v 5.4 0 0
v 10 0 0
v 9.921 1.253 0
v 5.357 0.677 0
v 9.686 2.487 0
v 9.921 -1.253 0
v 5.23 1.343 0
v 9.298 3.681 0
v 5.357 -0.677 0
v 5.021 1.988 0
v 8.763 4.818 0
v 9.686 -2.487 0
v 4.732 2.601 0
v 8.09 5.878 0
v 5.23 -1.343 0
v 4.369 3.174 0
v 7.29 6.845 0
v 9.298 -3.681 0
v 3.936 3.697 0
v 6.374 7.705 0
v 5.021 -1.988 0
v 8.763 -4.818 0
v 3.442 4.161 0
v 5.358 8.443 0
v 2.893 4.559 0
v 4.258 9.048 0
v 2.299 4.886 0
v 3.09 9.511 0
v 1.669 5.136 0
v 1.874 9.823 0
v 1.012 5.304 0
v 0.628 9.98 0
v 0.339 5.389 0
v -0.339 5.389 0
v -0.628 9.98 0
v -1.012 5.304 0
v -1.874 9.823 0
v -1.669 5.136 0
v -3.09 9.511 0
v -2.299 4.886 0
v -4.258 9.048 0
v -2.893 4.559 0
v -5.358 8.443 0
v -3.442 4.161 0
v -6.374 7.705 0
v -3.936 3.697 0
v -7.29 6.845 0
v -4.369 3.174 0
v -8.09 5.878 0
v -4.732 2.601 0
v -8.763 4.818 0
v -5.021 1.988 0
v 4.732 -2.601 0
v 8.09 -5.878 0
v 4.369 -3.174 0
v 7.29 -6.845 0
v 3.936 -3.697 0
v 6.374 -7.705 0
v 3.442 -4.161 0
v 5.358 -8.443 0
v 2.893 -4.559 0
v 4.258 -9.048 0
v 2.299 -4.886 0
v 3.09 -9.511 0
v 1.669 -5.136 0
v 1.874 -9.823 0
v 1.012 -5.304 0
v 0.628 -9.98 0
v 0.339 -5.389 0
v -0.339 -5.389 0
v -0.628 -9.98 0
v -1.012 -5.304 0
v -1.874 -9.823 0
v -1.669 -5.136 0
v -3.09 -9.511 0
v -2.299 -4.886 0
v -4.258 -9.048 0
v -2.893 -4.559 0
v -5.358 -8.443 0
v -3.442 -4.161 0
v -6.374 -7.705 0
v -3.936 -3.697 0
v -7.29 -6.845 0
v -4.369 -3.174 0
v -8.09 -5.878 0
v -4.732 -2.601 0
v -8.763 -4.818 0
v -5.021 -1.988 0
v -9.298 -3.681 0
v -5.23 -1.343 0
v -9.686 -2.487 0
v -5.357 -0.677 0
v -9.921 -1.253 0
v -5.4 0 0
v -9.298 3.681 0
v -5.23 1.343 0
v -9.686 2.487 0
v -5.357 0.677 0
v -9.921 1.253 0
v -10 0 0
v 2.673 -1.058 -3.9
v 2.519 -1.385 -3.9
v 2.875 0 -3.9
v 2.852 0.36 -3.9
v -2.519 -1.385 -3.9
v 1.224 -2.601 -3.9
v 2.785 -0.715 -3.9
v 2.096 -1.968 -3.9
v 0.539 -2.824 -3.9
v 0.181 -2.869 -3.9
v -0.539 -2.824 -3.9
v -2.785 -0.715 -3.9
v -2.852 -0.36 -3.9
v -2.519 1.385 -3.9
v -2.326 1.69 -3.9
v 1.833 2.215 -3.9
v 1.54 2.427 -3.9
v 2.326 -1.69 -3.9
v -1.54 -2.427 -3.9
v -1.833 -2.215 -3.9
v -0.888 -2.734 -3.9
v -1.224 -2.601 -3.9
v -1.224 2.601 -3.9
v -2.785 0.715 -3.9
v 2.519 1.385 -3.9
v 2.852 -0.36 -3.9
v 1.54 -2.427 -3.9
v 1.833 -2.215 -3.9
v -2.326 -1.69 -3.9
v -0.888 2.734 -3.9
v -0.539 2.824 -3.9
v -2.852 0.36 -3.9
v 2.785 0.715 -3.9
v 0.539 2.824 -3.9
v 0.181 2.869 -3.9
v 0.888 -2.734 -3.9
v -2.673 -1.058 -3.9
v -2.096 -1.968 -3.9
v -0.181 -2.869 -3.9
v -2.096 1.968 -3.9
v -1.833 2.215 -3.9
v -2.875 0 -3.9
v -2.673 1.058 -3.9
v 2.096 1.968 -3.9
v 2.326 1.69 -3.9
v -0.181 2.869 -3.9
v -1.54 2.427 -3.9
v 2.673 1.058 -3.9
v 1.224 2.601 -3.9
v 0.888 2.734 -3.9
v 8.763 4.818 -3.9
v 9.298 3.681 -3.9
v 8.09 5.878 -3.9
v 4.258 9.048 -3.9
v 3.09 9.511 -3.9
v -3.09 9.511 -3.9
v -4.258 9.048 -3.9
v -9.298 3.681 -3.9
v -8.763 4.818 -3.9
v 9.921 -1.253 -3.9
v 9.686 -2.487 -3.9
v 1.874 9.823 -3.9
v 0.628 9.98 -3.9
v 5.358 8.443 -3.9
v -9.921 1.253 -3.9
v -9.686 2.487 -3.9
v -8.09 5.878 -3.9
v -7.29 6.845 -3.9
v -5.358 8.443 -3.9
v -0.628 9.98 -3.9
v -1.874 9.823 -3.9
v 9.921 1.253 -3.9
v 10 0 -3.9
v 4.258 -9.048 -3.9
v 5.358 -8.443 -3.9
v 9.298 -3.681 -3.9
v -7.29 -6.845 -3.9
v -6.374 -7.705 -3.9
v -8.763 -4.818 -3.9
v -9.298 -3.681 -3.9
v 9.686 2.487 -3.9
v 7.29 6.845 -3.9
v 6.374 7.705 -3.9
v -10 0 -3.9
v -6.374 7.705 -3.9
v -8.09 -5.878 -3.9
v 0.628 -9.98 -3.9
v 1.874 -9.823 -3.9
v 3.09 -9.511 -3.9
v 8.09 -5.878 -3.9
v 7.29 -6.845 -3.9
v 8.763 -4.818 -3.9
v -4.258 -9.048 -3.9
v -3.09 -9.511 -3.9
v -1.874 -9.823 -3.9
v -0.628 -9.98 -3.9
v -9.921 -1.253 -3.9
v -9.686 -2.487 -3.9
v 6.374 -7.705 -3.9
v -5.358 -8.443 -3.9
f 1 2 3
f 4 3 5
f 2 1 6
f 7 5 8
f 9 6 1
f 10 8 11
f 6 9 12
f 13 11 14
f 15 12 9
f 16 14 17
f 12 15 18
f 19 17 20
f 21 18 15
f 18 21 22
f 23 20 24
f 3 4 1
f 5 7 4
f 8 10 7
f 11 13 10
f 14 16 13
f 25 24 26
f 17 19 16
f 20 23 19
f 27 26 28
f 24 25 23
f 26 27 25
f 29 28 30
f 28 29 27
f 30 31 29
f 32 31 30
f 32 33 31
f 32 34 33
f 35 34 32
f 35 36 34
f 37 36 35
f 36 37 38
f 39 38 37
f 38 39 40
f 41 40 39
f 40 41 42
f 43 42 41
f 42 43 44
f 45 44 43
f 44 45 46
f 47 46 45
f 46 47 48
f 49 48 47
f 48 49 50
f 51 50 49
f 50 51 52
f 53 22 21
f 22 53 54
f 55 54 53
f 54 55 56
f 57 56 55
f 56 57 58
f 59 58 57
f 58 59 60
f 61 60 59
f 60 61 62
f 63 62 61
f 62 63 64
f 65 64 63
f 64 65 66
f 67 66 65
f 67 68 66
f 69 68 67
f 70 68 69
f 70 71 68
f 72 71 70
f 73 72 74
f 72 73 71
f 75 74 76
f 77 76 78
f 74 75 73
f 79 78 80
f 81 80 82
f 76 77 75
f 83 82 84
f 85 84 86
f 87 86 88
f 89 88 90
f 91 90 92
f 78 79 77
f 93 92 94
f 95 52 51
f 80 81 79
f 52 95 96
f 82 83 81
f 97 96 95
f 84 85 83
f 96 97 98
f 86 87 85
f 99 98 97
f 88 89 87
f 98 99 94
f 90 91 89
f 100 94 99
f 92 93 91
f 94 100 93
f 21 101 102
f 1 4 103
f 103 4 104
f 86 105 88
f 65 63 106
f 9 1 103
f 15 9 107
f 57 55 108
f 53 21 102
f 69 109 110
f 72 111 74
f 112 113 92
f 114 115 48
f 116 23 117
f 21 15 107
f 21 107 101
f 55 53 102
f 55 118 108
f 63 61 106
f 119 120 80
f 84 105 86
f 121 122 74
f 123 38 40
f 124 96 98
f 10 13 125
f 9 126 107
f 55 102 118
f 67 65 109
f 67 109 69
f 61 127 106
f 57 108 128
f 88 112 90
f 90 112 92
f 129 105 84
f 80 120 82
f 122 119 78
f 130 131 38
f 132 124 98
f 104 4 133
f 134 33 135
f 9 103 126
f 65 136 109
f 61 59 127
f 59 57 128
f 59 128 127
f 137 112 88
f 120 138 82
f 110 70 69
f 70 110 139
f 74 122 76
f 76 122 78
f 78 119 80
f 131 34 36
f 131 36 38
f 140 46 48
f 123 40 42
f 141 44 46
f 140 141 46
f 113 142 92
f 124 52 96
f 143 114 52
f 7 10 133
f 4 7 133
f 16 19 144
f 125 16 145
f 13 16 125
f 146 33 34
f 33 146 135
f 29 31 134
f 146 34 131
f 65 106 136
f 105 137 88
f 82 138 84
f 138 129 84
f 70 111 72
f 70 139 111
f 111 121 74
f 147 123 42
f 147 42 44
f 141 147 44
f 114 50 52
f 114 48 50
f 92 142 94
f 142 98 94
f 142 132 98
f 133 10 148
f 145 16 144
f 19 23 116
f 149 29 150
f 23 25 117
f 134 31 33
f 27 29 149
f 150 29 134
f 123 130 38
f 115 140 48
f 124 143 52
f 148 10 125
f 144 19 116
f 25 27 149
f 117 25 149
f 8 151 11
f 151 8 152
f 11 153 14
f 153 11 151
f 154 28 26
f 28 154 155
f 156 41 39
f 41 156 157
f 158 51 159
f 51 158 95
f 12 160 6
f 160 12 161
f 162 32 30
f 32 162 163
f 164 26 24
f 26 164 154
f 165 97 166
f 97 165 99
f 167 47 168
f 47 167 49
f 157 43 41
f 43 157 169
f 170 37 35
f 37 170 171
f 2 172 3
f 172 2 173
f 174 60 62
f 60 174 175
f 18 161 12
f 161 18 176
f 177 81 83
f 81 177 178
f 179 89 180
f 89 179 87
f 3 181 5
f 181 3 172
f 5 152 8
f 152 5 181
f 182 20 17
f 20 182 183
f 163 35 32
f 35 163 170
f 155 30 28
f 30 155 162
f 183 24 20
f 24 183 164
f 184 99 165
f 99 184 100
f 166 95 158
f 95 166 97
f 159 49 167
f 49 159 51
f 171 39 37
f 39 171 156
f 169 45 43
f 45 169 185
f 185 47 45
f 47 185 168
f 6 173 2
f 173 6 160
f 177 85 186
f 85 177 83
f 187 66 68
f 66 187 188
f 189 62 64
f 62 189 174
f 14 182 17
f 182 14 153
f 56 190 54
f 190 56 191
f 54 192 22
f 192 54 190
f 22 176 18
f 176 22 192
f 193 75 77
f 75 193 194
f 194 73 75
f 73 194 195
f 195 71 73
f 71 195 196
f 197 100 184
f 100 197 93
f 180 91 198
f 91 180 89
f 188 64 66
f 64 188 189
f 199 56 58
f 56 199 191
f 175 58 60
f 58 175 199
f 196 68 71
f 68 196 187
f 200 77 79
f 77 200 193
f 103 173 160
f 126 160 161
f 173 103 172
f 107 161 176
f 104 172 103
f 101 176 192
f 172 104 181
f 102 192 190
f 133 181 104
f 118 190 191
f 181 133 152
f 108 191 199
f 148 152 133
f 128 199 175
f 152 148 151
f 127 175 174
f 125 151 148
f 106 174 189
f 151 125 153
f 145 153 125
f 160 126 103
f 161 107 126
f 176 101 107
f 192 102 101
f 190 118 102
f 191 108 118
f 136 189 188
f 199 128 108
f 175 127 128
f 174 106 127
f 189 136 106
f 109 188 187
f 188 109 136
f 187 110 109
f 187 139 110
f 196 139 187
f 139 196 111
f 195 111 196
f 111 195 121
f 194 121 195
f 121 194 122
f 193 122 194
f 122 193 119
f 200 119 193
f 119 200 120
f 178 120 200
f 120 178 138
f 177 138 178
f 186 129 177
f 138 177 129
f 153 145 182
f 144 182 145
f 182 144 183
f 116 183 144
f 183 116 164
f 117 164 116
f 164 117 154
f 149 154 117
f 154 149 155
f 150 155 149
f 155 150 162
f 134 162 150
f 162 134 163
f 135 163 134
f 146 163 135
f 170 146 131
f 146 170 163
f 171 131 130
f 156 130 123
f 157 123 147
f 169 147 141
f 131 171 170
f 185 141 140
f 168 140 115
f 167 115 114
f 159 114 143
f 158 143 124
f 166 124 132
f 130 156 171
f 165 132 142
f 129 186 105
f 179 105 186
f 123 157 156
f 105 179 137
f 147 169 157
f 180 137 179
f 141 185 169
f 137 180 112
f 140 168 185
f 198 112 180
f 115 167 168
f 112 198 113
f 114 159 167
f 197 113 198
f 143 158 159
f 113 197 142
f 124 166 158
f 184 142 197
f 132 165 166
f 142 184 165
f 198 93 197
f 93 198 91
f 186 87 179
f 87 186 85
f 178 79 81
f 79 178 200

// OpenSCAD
$fn = 50;

difference() {
	union() {
		translate(v = [0, 0, -3.9]) {
			cylinder(h = 3.9, r = 10.0);
		}
	}
	union() {
		translate(v = [0, 0, 0]) {
			rotate(a = [0, 0, 0]) {
				difference() {
					union() {
						translate(v = [0, 0, -6.9]) {
							cylinder(h = 6.9, r = 2.6);
						}
						translate(v = [0, 0, -3.9]) {
							cylinder(h = 3.9, r1 = 2.875, r2 = 5.4);
						}
						translate(v = [0, 0, -6.9]) {
							cylinder(h = 6.9, r = 2.875);
						}
						translate(v = [0, 0, -6.9]) {
							cylinder(h = 6.9, r = 2.6);
						}
					}
					union();
				}
			}
		}
	}
}
